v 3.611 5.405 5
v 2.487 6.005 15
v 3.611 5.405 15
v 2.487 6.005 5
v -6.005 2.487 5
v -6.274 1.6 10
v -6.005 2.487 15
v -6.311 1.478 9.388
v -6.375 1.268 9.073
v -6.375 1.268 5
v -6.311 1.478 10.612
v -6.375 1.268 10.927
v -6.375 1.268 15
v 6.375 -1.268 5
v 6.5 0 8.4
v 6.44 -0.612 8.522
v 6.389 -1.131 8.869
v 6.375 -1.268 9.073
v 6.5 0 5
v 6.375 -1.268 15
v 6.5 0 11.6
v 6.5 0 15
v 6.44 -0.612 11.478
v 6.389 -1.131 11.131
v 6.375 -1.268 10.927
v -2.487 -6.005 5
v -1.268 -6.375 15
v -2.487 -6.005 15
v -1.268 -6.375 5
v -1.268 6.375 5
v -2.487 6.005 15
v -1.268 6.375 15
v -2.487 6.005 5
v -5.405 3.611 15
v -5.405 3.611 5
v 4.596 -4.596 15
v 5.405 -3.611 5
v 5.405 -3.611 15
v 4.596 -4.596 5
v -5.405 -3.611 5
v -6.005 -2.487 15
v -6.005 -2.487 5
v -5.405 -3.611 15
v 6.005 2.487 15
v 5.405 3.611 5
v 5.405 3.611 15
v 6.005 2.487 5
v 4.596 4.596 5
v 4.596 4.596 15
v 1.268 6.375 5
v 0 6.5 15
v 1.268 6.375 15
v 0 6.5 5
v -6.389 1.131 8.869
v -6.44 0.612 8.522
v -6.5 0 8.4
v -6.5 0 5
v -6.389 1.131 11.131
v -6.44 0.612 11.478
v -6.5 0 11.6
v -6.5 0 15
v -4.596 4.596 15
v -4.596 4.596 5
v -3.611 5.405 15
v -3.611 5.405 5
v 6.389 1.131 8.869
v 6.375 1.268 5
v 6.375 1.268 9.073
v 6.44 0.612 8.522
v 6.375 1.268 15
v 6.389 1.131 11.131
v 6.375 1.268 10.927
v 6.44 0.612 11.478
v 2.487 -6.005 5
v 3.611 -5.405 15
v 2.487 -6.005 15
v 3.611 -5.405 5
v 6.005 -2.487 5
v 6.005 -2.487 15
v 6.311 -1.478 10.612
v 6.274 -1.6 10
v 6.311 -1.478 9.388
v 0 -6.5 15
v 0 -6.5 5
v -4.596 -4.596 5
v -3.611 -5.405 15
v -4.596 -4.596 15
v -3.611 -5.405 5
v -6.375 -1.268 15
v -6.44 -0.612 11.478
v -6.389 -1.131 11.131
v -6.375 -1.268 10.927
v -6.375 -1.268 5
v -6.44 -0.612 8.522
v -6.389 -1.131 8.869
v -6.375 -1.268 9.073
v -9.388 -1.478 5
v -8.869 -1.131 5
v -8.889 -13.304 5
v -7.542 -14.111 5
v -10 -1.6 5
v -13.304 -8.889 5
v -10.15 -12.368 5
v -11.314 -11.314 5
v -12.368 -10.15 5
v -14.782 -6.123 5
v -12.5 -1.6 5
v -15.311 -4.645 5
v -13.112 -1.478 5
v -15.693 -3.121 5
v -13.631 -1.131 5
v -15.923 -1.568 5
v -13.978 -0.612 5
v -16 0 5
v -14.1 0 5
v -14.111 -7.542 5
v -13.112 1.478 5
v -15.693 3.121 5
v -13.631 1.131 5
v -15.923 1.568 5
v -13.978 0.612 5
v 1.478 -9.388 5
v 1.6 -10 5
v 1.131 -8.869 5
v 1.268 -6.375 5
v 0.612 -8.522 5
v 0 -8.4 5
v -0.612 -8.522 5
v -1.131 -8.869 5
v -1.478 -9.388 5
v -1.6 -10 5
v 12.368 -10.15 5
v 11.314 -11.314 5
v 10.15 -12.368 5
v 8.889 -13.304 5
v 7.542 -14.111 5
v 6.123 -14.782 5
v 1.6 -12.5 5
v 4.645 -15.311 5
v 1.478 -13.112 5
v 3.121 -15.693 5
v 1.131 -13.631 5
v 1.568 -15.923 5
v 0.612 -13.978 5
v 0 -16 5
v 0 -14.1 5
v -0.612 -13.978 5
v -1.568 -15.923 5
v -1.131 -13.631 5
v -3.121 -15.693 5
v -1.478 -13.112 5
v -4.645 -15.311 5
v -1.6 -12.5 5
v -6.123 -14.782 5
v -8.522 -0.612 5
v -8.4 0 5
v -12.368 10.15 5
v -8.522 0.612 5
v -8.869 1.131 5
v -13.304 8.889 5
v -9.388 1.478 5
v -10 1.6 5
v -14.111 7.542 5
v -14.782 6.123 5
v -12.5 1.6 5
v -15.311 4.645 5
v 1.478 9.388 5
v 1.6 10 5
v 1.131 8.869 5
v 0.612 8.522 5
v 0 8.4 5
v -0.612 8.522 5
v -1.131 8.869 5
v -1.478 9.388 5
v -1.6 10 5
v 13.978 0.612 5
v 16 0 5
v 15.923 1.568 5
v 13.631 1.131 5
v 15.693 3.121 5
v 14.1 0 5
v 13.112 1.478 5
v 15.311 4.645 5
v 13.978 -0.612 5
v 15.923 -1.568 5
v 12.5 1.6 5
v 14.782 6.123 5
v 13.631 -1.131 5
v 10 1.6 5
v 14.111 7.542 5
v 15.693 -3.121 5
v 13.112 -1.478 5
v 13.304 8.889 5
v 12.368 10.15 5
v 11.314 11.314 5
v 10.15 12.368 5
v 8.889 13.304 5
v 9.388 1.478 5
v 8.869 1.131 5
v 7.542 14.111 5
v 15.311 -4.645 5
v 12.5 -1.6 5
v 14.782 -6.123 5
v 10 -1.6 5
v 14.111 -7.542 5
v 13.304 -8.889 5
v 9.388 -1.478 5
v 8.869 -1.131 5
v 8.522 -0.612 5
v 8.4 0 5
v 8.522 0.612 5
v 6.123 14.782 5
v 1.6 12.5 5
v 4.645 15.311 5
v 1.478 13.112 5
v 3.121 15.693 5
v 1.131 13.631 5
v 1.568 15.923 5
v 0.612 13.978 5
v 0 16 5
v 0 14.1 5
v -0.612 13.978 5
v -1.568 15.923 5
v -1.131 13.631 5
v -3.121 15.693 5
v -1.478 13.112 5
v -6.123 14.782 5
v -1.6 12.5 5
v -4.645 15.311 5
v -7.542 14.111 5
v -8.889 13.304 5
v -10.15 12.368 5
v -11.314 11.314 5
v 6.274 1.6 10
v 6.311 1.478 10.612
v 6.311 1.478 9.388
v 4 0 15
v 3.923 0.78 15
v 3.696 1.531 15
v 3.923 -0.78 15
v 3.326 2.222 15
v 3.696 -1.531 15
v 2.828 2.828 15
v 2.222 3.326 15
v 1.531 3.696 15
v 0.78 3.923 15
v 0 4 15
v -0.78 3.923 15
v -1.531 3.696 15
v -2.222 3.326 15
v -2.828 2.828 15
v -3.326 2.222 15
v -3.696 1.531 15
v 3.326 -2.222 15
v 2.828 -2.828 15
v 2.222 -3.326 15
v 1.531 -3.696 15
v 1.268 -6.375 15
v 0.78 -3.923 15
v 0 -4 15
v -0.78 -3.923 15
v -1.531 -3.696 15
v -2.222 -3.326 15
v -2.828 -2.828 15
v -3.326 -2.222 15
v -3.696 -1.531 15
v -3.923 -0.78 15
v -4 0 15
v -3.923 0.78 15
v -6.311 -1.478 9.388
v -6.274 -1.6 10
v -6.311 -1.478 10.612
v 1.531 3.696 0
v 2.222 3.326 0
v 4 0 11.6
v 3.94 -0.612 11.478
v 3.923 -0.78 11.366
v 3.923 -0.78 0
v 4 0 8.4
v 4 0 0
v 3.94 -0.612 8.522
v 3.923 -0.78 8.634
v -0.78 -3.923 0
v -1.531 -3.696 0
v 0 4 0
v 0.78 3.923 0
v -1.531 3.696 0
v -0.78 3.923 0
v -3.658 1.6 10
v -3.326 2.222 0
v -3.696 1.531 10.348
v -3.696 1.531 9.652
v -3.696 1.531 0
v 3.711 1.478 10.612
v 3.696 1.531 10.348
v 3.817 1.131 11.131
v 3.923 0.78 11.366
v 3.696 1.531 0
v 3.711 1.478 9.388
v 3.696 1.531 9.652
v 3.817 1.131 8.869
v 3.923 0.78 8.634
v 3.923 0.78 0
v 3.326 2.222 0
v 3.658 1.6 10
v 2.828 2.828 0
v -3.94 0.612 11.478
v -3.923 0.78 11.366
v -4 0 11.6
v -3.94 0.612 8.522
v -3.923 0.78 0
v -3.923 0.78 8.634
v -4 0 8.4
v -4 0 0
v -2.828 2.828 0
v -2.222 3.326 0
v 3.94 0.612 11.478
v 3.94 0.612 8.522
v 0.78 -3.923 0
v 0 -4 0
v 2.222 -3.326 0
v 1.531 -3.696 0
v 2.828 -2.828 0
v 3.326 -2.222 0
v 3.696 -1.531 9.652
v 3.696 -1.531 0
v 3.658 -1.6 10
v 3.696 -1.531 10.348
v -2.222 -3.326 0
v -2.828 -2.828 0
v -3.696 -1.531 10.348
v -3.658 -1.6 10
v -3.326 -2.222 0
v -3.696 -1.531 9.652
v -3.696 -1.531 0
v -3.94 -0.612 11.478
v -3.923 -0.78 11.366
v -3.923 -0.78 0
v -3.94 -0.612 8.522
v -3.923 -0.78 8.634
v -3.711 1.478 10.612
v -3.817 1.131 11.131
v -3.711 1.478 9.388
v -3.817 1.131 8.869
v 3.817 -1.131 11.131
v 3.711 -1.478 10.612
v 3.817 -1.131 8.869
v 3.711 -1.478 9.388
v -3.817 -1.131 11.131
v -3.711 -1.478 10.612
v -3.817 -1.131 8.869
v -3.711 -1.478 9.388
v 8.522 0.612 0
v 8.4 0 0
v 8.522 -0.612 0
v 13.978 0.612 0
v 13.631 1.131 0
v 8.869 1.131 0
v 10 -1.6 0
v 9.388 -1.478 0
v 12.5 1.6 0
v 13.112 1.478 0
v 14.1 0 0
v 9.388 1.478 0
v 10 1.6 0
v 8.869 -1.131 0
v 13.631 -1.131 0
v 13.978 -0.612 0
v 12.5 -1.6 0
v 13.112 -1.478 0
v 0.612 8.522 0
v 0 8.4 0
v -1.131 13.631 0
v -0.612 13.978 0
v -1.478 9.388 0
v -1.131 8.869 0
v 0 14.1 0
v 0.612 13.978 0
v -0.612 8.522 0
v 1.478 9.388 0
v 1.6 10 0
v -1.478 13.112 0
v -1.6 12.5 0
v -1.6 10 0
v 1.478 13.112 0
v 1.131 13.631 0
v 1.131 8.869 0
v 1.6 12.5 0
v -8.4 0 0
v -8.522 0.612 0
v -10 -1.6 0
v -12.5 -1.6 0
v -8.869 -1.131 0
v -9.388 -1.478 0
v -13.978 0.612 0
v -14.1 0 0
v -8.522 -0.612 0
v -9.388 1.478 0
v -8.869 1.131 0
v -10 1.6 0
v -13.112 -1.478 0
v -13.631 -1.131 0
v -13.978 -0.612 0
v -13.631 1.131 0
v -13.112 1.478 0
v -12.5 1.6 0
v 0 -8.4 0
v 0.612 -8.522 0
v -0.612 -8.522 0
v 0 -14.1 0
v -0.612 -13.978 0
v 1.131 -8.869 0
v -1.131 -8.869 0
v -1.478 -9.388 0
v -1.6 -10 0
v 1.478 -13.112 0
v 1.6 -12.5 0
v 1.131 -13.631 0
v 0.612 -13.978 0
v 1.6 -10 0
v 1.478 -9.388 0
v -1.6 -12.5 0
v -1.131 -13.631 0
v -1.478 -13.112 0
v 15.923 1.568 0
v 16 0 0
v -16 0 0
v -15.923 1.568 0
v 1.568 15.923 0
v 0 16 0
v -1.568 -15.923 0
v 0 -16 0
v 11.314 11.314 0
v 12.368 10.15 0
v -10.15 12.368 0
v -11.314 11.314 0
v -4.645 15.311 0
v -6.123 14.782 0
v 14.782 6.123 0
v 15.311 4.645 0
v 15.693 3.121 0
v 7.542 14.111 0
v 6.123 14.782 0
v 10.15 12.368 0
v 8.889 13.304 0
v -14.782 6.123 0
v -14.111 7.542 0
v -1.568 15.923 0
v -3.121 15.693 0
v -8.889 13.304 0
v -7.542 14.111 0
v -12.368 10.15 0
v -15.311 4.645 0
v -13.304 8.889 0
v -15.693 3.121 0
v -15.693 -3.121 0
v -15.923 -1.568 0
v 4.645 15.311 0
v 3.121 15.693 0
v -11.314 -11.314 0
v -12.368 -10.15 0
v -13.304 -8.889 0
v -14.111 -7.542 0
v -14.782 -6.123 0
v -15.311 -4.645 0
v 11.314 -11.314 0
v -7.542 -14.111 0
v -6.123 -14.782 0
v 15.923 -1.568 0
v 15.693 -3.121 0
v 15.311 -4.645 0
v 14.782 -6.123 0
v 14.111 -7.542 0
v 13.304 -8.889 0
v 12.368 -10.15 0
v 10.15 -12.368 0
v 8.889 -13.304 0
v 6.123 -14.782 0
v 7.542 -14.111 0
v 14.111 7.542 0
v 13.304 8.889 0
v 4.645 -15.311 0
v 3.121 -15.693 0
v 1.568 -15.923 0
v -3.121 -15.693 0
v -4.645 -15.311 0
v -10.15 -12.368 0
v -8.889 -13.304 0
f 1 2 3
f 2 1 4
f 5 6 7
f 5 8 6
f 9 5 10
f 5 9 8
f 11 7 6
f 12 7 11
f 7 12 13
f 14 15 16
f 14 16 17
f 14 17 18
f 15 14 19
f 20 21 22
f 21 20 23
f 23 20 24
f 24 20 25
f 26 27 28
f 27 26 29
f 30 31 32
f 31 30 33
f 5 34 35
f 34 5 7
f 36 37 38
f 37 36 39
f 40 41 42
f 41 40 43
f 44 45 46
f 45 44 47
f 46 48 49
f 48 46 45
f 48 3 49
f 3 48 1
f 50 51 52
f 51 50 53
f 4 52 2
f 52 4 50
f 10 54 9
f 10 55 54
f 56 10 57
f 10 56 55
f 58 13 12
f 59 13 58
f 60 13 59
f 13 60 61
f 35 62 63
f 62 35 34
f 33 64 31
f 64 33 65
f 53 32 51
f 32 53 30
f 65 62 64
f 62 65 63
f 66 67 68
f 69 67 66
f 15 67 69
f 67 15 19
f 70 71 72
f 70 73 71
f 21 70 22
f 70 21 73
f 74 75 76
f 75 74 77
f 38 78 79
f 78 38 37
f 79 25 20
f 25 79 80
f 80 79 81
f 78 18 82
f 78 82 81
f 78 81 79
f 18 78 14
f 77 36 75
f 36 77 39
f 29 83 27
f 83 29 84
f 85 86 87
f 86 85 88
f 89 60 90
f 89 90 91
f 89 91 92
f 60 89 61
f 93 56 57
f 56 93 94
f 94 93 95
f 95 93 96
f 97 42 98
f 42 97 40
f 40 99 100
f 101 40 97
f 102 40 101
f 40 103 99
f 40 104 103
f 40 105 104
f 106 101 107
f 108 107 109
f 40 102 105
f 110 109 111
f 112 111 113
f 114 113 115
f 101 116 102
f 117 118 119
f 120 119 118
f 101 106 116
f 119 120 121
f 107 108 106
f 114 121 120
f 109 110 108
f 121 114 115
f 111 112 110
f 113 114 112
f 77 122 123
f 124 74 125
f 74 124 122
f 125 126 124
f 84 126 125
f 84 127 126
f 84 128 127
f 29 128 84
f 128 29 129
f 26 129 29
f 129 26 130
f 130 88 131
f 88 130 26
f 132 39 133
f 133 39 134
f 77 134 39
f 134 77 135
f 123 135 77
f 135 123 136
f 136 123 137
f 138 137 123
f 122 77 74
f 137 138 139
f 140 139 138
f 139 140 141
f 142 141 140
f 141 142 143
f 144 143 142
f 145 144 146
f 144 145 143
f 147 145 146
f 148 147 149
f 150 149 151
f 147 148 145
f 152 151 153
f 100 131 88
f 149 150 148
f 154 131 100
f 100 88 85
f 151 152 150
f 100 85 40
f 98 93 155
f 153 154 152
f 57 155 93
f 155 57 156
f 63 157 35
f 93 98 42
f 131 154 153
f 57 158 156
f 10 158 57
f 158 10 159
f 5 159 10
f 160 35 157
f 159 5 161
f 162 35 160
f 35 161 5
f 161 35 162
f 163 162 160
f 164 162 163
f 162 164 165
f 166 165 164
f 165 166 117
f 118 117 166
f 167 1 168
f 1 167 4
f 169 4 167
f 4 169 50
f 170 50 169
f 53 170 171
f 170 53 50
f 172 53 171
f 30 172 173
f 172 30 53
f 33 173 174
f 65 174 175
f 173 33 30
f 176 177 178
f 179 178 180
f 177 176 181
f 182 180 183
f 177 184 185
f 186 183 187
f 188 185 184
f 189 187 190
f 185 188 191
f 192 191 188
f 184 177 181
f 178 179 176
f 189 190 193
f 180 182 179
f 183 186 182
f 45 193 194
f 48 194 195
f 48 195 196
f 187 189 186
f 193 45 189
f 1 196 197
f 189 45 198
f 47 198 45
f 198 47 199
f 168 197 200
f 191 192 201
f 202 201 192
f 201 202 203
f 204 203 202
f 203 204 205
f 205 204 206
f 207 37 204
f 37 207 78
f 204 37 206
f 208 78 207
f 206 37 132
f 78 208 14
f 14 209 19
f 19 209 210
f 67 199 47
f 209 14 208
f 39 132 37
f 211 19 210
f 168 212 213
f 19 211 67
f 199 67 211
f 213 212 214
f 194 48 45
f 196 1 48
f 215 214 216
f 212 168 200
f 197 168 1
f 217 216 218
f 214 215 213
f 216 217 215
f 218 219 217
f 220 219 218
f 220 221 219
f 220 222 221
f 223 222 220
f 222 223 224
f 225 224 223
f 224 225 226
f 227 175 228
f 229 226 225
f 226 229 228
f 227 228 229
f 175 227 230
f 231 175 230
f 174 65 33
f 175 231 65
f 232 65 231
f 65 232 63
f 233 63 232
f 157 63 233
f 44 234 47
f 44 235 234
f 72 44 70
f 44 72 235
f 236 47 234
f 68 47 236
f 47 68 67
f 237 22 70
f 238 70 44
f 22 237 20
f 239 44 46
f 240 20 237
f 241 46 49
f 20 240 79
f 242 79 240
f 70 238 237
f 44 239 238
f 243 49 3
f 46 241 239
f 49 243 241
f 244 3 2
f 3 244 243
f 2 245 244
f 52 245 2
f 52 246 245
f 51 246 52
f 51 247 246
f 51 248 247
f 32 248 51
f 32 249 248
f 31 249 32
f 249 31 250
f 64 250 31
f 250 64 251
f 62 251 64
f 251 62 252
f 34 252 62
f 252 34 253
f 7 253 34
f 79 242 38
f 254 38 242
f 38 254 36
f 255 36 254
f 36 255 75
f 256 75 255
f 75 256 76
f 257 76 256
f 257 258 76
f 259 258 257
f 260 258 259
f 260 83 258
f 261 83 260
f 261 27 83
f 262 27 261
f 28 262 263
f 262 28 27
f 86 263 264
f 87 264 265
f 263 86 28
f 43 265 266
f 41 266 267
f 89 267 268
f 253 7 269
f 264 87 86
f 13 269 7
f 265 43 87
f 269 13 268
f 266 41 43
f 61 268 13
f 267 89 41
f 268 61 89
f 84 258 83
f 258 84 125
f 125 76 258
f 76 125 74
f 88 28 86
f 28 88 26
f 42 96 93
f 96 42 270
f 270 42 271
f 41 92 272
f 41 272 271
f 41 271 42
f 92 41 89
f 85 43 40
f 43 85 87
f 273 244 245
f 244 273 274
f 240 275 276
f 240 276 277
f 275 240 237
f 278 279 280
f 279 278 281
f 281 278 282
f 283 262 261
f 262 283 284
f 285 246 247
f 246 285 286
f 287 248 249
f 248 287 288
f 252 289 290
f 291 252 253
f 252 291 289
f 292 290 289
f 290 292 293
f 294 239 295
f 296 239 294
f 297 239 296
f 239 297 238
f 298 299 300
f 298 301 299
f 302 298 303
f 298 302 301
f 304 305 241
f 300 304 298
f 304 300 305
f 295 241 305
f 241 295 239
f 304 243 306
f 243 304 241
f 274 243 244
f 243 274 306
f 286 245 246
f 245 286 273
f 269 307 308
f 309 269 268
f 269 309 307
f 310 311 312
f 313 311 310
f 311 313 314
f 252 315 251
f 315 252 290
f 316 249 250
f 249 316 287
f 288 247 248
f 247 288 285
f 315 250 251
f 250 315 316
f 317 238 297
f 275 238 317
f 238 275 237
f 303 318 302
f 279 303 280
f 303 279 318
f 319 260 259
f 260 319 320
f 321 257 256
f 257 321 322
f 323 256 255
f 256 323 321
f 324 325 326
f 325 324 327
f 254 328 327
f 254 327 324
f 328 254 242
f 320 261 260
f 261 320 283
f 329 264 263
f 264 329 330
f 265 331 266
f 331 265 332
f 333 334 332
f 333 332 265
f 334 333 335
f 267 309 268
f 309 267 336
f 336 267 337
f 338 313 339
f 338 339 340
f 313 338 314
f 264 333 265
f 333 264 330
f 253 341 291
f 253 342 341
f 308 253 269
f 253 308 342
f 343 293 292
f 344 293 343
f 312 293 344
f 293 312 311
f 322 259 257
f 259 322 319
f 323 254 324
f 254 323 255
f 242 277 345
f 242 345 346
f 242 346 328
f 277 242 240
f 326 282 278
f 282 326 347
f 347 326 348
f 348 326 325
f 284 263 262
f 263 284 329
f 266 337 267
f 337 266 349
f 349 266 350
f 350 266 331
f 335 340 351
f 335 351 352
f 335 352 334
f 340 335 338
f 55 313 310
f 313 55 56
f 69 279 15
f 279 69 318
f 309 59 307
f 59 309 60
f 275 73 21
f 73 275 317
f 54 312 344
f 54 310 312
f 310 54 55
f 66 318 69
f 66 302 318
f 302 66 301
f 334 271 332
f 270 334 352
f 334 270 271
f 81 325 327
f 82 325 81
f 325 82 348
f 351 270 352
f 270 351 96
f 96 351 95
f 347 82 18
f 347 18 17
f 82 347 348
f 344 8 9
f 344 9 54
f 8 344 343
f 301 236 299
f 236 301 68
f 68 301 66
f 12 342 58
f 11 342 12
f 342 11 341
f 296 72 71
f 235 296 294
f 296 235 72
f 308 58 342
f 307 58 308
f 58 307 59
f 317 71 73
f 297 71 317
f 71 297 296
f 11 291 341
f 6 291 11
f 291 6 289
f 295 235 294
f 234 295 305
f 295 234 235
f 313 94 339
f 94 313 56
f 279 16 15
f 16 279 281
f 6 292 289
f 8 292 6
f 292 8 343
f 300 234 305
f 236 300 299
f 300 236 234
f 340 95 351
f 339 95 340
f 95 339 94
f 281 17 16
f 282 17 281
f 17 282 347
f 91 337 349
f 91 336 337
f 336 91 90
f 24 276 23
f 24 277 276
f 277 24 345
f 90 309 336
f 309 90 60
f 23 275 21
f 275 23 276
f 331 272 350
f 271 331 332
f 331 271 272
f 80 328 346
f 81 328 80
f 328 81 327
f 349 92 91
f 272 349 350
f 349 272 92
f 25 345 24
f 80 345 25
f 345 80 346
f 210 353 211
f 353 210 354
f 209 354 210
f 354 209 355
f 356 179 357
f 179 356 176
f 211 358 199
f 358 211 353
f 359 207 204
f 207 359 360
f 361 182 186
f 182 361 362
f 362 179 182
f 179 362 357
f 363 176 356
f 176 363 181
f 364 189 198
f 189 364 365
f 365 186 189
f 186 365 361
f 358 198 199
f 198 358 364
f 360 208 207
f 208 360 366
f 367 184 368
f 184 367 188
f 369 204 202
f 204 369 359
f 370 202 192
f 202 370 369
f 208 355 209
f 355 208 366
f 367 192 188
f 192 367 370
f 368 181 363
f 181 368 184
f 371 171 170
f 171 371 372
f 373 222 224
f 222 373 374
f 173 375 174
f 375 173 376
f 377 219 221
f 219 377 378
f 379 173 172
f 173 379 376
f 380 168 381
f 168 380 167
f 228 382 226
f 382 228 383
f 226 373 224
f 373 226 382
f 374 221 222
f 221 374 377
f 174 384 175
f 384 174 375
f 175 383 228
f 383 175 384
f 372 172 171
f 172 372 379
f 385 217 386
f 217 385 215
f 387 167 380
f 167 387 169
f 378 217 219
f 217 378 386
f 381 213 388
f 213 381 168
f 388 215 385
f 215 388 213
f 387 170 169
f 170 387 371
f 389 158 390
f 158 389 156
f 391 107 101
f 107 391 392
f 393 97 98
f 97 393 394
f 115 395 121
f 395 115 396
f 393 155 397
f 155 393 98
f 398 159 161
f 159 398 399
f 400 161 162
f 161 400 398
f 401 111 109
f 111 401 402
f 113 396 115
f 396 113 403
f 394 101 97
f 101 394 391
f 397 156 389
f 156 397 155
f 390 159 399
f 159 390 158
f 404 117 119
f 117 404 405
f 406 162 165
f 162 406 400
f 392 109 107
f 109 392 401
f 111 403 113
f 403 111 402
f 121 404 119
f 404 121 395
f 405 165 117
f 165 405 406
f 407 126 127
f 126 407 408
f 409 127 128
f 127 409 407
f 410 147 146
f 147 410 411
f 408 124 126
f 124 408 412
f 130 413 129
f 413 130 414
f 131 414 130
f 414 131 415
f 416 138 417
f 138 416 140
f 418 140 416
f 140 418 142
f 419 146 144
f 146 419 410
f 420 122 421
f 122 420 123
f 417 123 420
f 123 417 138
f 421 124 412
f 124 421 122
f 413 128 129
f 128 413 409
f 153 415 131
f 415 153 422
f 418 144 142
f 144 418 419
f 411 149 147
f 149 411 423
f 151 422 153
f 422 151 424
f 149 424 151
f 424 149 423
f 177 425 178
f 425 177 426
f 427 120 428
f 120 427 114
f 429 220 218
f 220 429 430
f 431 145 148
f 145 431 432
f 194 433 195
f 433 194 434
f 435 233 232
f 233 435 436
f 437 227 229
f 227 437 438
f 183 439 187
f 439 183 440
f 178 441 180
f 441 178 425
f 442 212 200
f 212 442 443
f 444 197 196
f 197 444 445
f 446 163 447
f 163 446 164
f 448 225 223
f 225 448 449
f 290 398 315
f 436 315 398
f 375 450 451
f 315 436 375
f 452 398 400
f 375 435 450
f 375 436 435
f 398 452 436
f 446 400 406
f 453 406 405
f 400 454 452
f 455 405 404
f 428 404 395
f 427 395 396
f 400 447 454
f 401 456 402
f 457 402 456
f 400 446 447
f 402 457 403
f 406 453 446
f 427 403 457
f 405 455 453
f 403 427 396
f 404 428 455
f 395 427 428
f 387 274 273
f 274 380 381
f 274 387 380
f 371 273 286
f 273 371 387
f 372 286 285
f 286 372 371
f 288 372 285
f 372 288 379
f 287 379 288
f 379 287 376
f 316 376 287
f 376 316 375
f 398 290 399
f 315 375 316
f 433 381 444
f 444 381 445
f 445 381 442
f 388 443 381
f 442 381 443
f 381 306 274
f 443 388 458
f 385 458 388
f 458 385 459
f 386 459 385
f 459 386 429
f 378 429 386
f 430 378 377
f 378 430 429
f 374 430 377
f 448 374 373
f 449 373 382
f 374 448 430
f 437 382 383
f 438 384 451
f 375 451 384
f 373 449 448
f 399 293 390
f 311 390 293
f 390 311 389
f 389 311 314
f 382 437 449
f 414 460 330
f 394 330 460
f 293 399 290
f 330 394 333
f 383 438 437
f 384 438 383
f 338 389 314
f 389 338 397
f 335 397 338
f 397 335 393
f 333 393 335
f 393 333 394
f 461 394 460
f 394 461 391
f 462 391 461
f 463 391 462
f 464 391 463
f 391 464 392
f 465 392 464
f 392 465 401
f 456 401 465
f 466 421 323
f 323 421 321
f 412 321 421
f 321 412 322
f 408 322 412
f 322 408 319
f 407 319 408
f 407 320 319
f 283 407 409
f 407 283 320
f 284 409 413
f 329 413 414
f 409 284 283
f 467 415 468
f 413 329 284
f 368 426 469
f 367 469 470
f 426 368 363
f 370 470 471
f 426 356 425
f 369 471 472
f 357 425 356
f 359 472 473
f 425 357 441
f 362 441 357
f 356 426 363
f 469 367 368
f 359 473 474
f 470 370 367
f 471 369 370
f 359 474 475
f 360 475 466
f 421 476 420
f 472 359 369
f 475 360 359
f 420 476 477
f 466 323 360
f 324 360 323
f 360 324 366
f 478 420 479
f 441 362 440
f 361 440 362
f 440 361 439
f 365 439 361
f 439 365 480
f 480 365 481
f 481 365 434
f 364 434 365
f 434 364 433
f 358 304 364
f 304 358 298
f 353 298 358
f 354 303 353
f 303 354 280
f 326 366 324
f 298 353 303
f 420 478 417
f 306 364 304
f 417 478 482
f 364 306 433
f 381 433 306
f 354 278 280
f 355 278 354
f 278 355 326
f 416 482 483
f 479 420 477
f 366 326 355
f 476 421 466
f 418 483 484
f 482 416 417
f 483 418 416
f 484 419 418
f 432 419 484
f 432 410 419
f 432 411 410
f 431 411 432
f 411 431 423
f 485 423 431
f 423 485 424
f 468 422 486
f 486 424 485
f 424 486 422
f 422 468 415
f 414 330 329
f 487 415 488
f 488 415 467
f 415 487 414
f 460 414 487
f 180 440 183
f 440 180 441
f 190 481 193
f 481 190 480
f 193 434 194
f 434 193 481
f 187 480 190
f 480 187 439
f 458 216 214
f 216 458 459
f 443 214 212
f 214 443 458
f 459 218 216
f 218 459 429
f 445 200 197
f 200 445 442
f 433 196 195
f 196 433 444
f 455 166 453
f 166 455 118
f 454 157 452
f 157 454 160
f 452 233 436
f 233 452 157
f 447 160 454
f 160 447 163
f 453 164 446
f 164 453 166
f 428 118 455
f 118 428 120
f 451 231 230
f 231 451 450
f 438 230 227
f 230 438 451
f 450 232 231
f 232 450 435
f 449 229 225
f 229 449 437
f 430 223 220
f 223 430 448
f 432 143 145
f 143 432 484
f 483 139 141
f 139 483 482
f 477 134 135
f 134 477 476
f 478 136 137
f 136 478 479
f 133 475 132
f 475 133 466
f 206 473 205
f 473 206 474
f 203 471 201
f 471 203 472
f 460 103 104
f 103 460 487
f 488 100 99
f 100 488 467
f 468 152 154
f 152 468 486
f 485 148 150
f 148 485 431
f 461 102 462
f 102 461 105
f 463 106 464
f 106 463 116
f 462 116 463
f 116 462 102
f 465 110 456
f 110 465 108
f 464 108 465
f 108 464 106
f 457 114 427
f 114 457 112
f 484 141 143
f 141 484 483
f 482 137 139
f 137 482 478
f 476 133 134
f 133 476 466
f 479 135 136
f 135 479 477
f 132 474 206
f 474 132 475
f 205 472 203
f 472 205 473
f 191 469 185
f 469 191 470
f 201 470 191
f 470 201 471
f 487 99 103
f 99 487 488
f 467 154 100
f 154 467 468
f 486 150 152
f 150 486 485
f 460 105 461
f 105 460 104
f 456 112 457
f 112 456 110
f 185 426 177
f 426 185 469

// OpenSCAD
// Universal Flange - 4 Hole Design
// ID: 8mm, PCD: 20mm, 4x M3 Screws
// 3D Printable Design

// ========== PARAMETERS ==========
// Core dimensions
id = 8;              // Inner diameter (mm)
pcd = 20;            // Pitch circle diameter (mm)
num_holes = 4;       // Number of mounting holes
screw_dia = 3.2;     // M3 screw hole diameter (3.2mm for clearance)

// Proportional dimensions
flange_od = pcd + 12;  // Outer diameter (proportional)
flange_thickness = 5;   // Thickness (proportional to ID)
boss_height = 10;       // Center boss height (increased for grub screw)
grub_screw_dia = 3.2;   // M3 grub screw hole diameter
grub_screw_radius = grub_screw_dia / 2;

// ========== DERIVED VALUES ==========
hole_radius = id / 2;
boss_radius = 6.5;            // Smaller boss to clear mounting holes (13mm OD)
pcd_radius = pcd / 2;
screw_radius = screw_dia / 2;

// ========== MAIN FLANGE ==========
difference() {
    // Base flange disc
    cylinder(h = flange_thickness, r = flange_od / 2, $fn = 64);
    
    // Center hole
    translate([0, 0, -0.5])
    cylinder(h = flange_thickness + 1, r = hole_radius, $fn = 32);
    
    // 4 slotted holes around PCD (for tolerance adjustment)
    // Slots are radial to allow ±1mm PCD adjustment (19-21mm range)
    for (i = [0 : num_holes - 1]) {
        angle = (360 / num_holes) * i;
        translate([
            pcd_radius * cos(angle),
            pcd_radius * sin(angle),
            -0.5
        ])
        rotate([0, 0, angle])
        // Radial slot: 2.5mm radial length (covers 19-21mm range)
        hull() {
            cylinder(h = flange_thickness + 1, r = screw_radius, $fn = 16);
            translate([2.5, 0, 0])
            cylinder(h = flange_thickness + 1, r = screw_radius, $fn = 16);
        }
    }
}

// ========== CENTER BOSS (optional strengthening) ==========
translate([0, 0, flange_thickness])
difference() {
    // Boss ring
    cylinder(h = boss_height, r = boss_radius, $fn = 32);
    
    // Hollow center for shaft passage
    translate([0, 0, -0.5])
    cylinder(h = boss_height + 1, r = hole_radius, $fn = 32);
    
    // Radial grub screw hole (M3) for shaft clamping
    // Goes through the side of boss at mid-height
    translate([0, 0, boss_height / 2])
    rotate([0, 90, 0])
    cylinder(h = boss_radius * 2 + 2, r = grub_screw_radius, center = true, $fn = 16);
}

// ========== DESIGN NOTES ==========
// - All dimensions in millimeters
// - Suitable for FDM 3D printing (layer height 0.2mm recommended)
// - Material: PLA, PETG, or ABS
// - Print orientation: flat (with flange_thickness vertical)
// - Supports: May be needed under mounting holes
// - Screw holes are M3 clearance (3.2mm) - adjust if needed for fit
//
// TO USE:
// 1. Open in OpenSCAD (free software)
// 2. Export as STL
// 3. Slice and print
//
// TO CUSTOMIZE:
// - Change flange_od for larger/smaller overall size
// - Change flange_thickness for thicker/thinner flange
// - Change screw_dia if using different screws (M2.5 = 2.7mm, M4 = 4.2mm)
// - Change PCD for different hole spacing
